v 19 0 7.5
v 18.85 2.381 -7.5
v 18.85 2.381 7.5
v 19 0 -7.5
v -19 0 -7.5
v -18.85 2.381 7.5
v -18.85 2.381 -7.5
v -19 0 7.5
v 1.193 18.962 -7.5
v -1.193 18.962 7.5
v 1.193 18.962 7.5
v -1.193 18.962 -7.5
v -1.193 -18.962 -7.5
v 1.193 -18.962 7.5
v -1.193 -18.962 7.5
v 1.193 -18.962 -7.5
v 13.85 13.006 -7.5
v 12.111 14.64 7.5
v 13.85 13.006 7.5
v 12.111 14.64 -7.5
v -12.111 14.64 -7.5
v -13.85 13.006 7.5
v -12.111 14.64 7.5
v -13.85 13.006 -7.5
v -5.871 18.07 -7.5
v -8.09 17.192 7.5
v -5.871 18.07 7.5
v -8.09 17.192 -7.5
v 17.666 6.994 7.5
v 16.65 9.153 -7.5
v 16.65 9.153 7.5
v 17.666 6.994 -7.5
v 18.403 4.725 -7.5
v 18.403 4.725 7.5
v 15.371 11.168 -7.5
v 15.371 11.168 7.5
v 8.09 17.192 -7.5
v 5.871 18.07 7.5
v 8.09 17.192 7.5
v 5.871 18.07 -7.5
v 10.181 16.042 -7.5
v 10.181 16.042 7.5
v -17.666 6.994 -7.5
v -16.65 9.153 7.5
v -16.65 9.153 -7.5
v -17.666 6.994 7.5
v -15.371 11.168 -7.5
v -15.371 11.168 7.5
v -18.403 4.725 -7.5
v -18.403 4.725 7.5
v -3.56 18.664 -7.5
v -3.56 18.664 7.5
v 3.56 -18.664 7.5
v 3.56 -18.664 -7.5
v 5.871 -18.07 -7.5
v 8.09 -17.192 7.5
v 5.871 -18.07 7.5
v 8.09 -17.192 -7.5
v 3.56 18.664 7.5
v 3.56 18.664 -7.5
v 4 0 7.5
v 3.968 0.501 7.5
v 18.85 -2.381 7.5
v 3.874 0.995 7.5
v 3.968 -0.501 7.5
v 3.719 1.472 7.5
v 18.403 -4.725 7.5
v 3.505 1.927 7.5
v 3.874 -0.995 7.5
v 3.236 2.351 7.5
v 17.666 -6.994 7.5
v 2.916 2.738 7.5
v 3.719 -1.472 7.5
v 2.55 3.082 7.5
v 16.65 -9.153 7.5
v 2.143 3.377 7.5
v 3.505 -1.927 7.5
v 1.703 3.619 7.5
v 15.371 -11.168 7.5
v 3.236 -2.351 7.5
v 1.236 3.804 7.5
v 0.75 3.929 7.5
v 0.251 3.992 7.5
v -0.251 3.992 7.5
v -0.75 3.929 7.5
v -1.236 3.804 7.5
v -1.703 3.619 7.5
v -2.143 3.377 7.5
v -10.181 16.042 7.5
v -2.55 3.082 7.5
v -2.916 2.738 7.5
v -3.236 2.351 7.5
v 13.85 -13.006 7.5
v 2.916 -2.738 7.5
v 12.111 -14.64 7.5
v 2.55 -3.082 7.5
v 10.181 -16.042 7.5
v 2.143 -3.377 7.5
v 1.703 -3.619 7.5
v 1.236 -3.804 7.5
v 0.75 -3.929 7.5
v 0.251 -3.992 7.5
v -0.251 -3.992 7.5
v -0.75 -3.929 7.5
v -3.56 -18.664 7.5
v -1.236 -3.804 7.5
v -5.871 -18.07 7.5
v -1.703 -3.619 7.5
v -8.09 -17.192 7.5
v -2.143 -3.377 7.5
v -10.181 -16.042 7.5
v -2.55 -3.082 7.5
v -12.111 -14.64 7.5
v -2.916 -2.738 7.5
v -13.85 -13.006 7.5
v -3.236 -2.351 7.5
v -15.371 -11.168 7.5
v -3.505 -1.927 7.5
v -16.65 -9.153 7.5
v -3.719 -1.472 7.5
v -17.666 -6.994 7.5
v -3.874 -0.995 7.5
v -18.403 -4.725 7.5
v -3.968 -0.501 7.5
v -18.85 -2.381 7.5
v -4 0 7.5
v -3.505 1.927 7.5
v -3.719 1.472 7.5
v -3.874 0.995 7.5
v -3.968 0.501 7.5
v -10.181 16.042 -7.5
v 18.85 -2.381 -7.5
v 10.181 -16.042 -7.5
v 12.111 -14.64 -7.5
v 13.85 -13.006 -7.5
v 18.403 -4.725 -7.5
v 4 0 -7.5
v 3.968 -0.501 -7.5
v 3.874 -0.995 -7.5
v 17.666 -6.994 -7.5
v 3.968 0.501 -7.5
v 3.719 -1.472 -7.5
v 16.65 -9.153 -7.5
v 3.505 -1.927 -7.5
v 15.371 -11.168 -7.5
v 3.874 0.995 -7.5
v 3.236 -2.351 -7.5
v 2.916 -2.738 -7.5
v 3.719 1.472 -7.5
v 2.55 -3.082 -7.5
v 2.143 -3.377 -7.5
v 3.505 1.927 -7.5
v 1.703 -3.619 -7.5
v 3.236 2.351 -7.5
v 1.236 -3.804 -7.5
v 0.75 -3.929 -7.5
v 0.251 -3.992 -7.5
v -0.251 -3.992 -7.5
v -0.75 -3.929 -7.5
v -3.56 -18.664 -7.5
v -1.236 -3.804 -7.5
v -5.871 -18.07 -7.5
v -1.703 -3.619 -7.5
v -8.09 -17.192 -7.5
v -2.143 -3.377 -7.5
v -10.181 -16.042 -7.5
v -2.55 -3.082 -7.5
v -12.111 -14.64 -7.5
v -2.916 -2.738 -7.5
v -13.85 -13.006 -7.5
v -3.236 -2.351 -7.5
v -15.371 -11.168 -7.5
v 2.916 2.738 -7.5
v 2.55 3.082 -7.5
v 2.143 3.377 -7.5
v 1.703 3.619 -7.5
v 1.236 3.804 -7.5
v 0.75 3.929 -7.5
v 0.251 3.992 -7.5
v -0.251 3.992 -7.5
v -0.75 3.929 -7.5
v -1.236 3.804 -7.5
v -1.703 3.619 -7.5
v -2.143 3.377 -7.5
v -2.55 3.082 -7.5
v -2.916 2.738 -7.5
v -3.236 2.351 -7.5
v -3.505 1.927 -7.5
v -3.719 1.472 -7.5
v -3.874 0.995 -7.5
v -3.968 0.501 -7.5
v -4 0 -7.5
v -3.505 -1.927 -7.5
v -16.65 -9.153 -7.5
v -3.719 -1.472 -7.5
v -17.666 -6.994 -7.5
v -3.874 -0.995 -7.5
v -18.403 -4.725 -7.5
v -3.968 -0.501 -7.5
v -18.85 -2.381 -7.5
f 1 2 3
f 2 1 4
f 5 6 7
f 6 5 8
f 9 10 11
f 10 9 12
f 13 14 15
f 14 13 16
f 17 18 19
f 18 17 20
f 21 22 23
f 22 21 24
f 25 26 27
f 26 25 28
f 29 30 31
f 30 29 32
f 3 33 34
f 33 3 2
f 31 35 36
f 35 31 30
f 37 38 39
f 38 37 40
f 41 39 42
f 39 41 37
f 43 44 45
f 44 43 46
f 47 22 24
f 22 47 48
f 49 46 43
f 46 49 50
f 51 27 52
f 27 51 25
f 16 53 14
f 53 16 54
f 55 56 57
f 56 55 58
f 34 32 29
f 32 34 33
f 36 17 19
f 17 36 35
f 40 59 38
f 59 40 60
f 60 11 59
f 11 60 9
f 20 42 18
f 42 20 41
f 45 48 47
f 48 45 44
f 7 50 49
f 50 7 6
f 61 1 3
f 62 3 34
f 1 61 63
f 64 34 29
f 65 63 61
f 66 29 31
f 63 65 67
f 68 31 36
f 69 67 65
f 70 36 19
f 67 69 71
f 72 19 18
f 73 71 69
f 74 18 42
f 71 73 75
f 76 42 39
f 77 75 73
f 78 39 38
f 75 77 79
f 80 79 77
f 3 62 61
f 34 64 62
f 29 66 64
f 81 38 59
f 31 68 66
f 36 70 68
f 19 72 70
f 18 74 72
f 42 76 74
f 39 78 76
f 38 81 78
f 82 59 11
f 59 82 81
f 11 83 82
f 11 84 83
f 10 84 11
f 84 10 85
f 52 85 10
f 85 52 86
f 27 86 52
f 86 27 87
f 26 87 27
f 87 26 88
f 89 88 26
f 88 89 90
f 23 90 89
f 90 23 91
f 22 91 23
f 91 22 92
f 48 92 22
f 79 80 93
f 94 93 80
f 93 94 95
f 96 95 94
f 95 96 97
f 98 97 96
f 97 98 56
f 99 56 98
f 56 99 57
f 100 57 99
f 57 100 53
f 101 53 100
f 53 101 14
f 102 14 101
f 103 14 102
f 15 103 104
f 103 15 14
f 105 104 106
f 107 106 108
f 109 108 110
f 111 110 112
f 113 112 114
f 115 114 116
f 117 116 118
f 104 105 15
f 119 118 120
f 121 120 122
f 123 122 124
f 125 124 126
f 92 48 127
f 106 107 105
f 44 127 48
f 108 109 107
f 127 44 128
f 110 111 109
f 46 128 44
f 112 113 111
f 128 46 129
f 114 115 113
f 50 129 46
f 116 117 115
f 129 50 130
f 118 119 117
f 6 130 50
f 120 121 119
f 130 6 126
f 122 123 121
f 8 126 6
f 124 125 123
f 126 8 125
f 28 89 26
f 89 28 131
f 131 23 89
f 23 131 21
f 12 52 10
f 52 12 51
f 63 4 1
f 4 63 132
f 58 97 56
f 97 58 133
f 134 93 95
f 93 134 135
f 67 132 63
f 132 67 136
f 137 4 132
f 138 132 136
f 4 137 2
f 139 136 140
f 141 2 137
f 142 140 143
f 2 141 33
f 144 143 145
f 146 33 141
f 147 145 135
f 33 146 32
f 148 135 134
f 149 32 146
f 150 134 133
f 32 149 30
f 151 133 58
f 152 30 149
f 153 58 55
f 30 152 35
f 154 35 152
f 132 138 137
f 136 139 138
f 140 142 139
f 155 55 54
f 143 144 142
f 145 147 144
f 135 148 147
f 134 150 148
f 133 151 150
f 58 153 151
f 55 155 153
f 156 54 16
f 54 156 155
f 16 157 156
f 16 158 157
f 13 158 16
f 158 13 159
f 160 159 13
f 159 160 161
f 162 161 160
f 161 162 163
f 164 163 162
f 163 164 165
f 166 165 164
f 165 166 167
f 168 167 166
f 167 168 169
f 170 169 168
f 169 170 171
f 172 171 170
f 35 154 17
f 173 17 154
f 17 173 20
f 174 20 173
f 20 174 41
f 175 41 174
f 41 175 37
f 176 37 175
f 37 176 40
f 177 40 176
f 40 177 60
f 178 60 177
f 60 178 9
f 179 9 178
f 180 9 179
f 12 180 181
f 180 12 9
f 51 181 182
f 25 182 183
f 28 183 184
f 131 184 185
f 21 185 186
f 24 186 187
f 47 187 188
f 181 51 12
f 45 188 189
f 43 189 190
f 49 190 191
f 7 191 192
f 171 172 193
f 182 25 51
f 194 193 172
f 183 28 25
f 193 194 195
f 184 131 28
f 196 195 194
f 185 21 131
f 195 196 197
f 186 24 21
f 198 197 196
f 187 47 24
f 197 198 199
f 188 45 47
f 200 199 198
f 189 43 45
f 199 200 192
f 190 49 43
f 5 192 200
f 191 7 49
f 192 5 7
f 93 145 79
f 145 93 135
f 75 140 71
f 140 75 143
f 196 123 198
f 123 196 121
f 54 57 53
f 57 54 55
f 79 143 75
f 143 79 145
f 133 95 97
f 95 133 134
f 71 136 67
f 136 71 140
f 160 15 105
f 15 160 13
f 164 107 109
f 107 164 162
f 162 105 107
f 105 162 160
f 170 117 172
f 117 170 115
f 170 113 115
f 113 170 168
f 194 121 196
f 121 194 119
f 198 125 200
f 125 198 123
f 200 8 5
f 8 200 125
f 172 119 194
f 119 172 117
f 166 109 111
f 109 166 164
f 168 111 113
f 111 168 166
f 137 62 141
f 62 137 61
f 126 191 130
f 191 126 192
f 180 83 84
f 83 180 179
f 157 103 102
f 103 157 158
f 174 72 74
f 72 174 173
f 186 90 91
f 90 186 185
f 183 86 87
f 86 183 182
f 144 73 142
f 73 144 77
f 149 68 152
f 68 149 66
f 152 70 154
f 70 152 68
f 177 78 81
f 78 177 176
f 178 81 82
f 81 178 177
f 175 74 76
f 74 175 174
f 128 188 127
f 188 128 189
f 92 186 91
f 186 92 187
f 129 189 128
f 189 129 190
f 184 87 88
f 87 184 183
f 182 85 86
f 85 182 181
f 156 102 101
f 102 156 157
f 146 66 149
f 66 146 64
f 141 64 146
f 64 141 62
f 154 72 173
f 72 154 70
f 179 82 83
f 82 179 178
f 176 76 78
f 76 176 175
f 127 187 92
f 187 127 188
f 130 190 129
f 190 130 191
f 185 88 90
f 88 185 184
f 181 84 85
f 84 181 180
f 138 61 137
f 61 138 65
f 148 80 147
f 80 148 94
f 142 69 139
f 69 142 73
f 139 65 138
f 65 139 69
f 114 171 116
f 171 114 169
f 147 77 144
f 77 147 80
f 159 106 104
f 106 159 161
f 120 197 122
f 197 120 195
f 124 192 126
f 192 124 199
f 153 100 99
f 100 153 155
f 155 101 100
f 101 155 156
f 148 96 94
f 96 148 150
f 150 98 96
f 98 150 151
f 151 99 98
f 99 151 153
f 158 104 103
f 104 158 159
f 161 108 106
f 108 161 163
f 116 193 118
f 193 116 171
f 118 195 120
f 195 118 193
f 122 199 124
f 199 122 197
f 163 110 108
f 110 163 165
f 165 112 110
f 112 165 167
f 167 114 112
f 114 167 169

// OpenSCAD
$fn = 50;


difference() {
	union() {
		translate(v = [0, 0, -7.5000000000]) {
			cylinder(h = 15, r = 19.0000000000);
		}
	}
	union() {
		translate(v = [0, 0, -100.0000000000]) {
			cylinder(h = 200, r = 4.0000000000);
		}
	}
}
